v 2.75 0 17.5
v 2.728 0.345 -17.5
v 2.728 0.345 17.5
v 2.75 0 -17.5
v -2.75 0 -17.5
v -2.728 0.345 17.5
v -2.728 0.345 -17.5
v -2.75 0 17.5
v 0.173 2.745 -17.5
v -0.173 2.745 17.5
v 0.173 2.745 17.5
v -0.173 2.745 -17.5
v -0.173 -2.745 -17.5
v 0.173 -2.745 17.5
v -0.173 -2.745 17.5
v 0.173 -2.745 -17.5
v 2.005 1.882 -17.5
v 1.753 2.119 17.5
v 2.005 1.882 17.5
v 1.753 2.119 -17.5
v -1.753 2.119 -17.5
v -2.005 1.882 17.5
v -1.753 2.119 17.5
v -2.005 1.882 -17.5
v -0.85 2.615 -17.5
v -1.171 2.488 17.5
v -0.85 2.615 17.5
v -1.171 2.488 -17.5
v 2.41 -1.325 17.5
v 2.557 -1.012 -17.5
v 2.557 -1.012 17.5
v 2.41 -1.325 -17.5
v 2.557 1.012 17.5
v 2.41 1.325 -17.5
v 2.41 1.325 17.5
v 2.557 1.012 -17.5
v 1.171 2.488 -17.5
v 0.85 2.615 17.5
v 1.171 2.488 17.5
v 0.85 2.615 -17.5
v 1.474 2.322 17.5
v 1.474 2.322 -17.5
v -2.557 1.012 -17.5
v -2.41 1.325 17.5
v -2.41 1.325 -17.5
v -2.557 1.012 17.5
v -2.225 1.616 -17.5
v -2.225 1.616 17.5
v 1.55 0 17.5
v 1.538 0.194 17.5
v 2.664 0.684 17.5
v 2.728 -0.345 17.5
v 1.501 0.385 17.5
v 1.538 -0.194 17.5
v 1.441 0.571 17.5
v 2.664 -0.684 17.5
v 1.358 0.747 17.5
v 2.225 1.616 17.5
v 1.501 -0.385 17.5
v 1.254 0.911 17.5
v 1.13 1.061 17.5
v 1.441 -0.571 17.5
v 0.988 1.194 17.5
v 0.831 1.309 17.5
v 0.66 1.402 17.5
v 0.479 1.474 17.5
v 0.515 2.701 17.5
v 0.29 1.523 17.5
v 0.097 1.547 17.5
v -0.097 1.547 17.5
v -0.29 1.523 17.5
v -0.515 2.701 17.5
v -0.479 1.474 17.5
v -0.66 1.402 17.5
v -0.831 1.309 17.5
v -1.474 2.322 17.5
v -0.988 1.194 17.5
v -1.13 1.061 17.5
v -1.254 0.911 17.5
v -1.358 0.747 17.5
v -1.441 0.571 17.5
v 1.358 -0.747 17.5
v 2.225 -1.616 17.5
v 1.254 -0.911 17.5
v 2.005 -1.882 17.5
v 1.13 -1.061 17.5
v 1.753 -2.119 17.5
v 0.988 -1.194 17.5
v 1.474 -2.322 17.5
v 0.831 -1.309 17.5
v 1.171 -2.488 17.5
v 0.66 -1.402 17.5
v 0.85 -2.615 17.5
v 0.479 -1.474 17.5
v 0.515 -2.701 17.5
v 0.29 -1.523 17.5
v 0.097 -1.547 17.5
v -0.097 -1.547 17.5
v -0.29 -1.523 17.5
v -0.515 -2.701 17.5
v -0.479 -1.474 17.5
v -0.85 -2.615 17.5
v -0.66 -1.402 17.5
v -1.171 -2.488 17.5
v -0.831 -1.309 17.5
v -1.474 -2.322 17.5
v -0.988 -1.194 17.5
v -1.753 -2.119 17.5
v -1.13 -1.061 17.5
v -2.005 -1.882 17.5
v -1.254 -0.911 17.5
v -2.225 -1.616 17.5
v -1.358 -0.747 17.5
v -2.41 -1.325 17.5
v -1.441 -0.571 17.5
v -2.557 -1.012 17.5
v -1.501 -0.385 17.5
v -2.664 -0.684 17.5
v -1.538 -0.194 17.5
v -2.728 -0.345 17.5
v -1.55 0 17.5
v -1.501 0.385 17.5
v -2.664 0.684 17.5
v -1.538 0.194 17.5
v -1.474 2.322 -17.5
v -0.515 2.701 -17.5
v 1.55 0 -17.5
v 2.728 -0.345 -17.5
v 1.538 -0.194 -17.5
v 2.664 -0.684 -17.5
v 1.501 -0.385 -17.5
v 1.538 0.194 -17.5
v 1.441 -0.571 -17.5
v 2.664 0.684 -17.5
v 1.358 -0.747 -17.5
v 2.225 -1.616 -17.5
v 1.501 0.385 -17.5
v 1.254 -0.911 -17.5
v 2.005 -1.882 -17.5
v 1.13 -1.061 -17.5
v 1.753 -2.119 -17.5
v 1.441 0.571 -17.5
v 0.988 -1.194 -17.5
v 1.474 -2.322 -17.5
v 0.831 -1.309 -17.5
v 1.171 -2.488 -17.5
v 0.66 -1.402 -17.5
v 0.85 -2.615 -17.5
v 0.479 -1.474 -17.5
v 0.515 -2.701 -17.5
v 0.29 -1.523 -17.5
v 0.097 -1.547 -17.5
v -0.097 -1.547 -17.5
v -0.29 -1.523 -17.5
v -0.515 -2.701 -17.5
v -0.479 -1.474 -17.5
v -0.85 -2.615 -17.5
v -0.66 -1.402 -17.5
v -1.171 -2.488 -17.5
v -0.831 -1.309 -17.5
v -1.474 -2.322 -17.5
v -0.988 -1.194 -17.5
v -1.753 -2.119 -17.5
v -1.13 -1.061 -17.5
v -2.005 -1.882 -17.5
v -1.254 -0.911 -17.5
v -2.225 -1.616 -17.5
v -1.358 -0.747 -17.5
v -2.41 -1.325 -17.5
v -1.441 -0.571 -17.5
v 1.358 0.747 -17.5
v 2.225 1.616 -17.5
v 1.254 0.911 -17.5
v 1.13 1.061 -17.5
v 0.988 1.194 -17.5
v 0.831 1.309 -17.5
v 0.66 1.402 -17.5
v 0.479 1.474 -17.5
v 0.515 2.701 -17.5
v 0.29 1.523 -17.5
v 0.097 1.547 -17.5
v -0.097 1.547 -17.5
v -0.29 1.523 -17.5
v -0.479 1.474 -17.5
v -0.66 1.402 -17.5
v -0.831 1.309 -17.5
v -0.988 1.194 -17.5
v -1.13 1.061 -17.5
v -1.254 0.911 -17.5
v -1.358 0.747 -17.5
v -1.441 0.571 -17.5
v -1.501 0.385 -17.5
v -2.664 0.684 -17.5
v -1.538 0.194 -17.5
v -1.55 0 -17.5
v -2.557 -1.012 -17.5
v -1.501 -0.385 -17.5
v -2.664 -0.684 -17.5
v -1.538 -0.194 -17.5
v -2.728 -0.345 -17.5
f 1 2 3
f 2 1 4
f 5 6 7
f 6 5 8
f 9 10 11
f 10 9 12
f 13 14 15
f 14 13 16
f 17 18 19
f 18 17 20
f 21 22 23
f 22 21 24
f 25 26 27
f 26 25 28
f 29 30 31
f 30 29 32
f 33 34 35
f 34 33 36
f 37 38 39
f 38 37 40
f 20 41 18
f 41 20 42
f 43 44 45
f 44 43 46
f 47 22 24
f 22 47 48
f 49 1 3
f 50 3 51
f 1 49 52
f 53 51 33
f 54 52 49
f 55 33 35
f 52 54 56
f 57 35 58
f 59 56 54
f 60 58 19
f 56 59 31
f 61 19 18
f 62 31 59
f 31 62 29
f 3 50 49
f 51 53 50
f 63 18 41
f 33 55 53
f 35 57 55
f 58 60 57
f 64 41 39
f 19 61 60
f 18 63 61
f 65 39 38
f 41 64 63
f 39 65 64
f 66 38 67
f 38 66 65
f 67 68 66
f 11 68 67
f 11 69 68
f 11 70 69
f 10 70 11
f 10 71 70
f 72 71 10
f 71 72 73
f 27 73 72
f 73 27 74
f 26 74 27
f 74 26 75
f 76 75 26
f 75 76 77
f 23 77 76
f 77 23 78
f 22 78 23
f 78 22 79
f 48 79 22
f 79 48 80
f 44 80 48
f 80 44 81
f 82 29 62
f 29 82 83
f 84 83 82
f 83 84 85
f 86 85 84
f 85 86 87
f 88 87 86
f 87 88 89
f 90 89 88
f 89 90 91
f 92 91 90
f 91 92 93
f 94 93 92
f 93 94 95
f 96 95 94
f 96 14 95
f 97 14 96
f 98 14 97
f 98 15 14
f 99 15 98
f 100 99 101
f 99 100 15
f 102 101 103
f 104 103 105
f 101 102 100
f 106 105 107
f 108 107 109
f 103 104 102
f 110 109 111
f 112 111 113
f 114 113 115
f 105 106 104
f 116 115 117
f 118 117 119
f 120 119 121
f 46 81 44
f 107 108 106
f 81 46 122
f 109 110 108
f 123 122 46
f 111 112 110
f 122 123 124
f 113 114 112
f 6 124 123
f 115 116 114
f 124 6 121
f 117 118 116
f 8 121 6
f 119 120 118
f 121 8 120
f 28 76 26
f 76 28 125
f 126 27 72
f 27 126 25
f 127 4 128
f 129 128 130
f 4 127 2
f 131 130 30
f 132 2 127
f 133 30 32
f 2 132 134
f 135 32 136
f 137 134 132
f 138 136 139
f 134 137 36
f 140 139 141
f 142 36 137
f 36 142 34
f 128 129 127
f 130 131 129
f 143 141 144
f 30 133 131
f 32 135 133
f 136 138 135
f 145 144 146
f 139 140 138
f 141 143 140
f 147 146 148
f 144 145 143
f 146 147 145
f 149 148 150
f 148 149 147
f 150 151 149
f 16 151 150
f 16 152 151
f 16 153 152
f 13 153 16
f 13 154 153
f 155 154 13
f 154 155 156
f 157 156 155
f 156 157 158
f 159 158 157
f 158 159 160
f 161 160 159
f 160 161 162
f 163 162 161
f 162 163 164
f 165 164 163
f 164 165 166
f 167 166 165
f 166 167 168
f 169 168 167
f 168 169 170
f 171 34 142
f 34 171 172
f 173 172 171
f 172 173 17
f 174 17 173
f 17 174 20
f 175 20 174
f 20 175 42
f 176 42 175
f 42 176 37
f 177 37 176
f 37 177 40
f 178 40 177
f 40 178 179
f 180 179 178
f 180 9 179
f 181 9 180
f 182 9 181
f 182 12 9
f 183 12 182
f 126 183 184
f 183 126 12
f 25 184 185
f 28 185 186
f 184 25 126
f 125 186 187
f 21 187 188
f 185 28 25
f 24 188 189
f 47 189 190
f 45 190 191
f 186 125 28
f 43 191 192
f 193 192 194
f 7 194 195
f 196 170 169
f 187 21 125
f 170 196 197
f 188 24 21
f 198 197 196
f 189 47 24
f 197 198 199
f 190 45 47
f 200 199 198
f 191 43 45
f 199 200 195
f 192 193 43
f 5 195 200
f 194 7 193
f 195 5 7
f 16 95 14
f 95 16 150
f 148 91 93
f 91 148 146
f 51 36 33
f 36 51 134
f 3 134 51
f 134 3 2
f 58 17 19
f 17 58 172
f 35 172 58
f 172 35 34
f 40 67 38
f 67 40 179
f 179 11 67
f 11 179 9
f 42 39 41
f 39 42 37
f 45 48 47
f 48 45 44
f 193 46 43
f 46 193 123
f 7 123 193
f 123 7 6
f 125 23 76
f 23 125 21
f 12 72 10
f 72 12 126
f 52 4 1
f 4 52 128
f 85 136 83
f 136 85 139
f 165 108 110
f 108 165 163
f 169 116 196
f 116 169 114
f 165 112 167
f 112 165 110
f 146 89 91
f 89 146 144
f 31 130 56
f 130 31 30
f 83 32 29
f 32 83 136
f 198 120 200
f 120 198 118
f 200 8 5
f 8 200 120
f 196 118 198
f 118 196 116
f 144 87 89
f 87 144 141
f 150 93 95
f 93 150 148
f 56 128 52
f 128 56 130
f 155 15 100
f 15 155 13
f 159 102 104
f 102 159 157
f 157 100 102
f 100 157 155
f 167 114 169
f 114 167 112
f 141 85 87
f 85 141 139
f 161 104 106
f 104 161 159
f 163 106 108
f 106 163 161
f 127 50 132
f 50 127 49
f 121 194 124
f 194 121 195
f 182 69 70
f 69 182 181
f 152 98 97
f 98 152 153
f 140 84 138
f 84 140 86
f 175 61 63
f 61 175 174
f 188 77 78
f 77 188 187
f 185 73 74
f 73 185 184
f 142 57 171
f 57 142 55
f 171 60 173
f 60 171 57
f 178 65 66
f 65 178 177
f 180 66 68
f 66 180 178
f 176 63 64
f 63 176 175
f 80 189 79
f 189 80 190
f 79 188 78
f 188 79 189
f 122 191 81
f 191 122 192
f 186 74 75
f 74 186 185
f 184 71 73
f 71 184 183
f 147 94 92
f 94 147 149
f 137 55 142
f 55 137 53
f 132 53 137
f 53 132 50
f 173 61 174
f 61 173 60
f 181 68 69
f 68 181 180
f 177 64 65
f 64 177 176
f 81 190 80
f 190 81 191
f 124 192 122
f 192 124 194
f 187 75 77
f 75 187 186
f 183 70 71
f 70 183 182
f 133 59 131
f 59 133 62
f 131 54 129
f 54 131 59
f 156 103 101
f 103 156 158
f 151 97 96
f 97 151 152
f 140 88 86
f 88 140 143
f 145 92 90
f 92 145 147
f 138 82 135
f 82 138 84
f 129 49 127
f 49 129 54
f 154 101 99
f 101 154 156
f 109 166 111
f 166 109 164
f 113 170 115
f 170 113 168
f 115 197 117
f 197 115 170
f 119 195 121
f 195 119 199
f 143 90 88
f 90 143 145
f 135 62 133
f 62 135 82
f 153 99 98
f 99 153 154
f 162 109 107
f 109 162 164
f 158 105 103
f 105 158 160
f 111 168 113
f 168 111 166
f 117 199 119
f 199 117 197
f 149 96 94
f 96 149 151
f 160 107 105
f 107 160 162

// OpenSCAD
$fn = 50;


difference() {
	union() {
		translate(v = [0, 0, -17.5000000000]) {
			cylinder(h = 35, r = 2.7500000000);
		}
	}
	union() {
		translate(v = [0, 0, -100.0000000000]) {
			cylinder(h = 200, r = 1.5500000000);
		}
	}
}
